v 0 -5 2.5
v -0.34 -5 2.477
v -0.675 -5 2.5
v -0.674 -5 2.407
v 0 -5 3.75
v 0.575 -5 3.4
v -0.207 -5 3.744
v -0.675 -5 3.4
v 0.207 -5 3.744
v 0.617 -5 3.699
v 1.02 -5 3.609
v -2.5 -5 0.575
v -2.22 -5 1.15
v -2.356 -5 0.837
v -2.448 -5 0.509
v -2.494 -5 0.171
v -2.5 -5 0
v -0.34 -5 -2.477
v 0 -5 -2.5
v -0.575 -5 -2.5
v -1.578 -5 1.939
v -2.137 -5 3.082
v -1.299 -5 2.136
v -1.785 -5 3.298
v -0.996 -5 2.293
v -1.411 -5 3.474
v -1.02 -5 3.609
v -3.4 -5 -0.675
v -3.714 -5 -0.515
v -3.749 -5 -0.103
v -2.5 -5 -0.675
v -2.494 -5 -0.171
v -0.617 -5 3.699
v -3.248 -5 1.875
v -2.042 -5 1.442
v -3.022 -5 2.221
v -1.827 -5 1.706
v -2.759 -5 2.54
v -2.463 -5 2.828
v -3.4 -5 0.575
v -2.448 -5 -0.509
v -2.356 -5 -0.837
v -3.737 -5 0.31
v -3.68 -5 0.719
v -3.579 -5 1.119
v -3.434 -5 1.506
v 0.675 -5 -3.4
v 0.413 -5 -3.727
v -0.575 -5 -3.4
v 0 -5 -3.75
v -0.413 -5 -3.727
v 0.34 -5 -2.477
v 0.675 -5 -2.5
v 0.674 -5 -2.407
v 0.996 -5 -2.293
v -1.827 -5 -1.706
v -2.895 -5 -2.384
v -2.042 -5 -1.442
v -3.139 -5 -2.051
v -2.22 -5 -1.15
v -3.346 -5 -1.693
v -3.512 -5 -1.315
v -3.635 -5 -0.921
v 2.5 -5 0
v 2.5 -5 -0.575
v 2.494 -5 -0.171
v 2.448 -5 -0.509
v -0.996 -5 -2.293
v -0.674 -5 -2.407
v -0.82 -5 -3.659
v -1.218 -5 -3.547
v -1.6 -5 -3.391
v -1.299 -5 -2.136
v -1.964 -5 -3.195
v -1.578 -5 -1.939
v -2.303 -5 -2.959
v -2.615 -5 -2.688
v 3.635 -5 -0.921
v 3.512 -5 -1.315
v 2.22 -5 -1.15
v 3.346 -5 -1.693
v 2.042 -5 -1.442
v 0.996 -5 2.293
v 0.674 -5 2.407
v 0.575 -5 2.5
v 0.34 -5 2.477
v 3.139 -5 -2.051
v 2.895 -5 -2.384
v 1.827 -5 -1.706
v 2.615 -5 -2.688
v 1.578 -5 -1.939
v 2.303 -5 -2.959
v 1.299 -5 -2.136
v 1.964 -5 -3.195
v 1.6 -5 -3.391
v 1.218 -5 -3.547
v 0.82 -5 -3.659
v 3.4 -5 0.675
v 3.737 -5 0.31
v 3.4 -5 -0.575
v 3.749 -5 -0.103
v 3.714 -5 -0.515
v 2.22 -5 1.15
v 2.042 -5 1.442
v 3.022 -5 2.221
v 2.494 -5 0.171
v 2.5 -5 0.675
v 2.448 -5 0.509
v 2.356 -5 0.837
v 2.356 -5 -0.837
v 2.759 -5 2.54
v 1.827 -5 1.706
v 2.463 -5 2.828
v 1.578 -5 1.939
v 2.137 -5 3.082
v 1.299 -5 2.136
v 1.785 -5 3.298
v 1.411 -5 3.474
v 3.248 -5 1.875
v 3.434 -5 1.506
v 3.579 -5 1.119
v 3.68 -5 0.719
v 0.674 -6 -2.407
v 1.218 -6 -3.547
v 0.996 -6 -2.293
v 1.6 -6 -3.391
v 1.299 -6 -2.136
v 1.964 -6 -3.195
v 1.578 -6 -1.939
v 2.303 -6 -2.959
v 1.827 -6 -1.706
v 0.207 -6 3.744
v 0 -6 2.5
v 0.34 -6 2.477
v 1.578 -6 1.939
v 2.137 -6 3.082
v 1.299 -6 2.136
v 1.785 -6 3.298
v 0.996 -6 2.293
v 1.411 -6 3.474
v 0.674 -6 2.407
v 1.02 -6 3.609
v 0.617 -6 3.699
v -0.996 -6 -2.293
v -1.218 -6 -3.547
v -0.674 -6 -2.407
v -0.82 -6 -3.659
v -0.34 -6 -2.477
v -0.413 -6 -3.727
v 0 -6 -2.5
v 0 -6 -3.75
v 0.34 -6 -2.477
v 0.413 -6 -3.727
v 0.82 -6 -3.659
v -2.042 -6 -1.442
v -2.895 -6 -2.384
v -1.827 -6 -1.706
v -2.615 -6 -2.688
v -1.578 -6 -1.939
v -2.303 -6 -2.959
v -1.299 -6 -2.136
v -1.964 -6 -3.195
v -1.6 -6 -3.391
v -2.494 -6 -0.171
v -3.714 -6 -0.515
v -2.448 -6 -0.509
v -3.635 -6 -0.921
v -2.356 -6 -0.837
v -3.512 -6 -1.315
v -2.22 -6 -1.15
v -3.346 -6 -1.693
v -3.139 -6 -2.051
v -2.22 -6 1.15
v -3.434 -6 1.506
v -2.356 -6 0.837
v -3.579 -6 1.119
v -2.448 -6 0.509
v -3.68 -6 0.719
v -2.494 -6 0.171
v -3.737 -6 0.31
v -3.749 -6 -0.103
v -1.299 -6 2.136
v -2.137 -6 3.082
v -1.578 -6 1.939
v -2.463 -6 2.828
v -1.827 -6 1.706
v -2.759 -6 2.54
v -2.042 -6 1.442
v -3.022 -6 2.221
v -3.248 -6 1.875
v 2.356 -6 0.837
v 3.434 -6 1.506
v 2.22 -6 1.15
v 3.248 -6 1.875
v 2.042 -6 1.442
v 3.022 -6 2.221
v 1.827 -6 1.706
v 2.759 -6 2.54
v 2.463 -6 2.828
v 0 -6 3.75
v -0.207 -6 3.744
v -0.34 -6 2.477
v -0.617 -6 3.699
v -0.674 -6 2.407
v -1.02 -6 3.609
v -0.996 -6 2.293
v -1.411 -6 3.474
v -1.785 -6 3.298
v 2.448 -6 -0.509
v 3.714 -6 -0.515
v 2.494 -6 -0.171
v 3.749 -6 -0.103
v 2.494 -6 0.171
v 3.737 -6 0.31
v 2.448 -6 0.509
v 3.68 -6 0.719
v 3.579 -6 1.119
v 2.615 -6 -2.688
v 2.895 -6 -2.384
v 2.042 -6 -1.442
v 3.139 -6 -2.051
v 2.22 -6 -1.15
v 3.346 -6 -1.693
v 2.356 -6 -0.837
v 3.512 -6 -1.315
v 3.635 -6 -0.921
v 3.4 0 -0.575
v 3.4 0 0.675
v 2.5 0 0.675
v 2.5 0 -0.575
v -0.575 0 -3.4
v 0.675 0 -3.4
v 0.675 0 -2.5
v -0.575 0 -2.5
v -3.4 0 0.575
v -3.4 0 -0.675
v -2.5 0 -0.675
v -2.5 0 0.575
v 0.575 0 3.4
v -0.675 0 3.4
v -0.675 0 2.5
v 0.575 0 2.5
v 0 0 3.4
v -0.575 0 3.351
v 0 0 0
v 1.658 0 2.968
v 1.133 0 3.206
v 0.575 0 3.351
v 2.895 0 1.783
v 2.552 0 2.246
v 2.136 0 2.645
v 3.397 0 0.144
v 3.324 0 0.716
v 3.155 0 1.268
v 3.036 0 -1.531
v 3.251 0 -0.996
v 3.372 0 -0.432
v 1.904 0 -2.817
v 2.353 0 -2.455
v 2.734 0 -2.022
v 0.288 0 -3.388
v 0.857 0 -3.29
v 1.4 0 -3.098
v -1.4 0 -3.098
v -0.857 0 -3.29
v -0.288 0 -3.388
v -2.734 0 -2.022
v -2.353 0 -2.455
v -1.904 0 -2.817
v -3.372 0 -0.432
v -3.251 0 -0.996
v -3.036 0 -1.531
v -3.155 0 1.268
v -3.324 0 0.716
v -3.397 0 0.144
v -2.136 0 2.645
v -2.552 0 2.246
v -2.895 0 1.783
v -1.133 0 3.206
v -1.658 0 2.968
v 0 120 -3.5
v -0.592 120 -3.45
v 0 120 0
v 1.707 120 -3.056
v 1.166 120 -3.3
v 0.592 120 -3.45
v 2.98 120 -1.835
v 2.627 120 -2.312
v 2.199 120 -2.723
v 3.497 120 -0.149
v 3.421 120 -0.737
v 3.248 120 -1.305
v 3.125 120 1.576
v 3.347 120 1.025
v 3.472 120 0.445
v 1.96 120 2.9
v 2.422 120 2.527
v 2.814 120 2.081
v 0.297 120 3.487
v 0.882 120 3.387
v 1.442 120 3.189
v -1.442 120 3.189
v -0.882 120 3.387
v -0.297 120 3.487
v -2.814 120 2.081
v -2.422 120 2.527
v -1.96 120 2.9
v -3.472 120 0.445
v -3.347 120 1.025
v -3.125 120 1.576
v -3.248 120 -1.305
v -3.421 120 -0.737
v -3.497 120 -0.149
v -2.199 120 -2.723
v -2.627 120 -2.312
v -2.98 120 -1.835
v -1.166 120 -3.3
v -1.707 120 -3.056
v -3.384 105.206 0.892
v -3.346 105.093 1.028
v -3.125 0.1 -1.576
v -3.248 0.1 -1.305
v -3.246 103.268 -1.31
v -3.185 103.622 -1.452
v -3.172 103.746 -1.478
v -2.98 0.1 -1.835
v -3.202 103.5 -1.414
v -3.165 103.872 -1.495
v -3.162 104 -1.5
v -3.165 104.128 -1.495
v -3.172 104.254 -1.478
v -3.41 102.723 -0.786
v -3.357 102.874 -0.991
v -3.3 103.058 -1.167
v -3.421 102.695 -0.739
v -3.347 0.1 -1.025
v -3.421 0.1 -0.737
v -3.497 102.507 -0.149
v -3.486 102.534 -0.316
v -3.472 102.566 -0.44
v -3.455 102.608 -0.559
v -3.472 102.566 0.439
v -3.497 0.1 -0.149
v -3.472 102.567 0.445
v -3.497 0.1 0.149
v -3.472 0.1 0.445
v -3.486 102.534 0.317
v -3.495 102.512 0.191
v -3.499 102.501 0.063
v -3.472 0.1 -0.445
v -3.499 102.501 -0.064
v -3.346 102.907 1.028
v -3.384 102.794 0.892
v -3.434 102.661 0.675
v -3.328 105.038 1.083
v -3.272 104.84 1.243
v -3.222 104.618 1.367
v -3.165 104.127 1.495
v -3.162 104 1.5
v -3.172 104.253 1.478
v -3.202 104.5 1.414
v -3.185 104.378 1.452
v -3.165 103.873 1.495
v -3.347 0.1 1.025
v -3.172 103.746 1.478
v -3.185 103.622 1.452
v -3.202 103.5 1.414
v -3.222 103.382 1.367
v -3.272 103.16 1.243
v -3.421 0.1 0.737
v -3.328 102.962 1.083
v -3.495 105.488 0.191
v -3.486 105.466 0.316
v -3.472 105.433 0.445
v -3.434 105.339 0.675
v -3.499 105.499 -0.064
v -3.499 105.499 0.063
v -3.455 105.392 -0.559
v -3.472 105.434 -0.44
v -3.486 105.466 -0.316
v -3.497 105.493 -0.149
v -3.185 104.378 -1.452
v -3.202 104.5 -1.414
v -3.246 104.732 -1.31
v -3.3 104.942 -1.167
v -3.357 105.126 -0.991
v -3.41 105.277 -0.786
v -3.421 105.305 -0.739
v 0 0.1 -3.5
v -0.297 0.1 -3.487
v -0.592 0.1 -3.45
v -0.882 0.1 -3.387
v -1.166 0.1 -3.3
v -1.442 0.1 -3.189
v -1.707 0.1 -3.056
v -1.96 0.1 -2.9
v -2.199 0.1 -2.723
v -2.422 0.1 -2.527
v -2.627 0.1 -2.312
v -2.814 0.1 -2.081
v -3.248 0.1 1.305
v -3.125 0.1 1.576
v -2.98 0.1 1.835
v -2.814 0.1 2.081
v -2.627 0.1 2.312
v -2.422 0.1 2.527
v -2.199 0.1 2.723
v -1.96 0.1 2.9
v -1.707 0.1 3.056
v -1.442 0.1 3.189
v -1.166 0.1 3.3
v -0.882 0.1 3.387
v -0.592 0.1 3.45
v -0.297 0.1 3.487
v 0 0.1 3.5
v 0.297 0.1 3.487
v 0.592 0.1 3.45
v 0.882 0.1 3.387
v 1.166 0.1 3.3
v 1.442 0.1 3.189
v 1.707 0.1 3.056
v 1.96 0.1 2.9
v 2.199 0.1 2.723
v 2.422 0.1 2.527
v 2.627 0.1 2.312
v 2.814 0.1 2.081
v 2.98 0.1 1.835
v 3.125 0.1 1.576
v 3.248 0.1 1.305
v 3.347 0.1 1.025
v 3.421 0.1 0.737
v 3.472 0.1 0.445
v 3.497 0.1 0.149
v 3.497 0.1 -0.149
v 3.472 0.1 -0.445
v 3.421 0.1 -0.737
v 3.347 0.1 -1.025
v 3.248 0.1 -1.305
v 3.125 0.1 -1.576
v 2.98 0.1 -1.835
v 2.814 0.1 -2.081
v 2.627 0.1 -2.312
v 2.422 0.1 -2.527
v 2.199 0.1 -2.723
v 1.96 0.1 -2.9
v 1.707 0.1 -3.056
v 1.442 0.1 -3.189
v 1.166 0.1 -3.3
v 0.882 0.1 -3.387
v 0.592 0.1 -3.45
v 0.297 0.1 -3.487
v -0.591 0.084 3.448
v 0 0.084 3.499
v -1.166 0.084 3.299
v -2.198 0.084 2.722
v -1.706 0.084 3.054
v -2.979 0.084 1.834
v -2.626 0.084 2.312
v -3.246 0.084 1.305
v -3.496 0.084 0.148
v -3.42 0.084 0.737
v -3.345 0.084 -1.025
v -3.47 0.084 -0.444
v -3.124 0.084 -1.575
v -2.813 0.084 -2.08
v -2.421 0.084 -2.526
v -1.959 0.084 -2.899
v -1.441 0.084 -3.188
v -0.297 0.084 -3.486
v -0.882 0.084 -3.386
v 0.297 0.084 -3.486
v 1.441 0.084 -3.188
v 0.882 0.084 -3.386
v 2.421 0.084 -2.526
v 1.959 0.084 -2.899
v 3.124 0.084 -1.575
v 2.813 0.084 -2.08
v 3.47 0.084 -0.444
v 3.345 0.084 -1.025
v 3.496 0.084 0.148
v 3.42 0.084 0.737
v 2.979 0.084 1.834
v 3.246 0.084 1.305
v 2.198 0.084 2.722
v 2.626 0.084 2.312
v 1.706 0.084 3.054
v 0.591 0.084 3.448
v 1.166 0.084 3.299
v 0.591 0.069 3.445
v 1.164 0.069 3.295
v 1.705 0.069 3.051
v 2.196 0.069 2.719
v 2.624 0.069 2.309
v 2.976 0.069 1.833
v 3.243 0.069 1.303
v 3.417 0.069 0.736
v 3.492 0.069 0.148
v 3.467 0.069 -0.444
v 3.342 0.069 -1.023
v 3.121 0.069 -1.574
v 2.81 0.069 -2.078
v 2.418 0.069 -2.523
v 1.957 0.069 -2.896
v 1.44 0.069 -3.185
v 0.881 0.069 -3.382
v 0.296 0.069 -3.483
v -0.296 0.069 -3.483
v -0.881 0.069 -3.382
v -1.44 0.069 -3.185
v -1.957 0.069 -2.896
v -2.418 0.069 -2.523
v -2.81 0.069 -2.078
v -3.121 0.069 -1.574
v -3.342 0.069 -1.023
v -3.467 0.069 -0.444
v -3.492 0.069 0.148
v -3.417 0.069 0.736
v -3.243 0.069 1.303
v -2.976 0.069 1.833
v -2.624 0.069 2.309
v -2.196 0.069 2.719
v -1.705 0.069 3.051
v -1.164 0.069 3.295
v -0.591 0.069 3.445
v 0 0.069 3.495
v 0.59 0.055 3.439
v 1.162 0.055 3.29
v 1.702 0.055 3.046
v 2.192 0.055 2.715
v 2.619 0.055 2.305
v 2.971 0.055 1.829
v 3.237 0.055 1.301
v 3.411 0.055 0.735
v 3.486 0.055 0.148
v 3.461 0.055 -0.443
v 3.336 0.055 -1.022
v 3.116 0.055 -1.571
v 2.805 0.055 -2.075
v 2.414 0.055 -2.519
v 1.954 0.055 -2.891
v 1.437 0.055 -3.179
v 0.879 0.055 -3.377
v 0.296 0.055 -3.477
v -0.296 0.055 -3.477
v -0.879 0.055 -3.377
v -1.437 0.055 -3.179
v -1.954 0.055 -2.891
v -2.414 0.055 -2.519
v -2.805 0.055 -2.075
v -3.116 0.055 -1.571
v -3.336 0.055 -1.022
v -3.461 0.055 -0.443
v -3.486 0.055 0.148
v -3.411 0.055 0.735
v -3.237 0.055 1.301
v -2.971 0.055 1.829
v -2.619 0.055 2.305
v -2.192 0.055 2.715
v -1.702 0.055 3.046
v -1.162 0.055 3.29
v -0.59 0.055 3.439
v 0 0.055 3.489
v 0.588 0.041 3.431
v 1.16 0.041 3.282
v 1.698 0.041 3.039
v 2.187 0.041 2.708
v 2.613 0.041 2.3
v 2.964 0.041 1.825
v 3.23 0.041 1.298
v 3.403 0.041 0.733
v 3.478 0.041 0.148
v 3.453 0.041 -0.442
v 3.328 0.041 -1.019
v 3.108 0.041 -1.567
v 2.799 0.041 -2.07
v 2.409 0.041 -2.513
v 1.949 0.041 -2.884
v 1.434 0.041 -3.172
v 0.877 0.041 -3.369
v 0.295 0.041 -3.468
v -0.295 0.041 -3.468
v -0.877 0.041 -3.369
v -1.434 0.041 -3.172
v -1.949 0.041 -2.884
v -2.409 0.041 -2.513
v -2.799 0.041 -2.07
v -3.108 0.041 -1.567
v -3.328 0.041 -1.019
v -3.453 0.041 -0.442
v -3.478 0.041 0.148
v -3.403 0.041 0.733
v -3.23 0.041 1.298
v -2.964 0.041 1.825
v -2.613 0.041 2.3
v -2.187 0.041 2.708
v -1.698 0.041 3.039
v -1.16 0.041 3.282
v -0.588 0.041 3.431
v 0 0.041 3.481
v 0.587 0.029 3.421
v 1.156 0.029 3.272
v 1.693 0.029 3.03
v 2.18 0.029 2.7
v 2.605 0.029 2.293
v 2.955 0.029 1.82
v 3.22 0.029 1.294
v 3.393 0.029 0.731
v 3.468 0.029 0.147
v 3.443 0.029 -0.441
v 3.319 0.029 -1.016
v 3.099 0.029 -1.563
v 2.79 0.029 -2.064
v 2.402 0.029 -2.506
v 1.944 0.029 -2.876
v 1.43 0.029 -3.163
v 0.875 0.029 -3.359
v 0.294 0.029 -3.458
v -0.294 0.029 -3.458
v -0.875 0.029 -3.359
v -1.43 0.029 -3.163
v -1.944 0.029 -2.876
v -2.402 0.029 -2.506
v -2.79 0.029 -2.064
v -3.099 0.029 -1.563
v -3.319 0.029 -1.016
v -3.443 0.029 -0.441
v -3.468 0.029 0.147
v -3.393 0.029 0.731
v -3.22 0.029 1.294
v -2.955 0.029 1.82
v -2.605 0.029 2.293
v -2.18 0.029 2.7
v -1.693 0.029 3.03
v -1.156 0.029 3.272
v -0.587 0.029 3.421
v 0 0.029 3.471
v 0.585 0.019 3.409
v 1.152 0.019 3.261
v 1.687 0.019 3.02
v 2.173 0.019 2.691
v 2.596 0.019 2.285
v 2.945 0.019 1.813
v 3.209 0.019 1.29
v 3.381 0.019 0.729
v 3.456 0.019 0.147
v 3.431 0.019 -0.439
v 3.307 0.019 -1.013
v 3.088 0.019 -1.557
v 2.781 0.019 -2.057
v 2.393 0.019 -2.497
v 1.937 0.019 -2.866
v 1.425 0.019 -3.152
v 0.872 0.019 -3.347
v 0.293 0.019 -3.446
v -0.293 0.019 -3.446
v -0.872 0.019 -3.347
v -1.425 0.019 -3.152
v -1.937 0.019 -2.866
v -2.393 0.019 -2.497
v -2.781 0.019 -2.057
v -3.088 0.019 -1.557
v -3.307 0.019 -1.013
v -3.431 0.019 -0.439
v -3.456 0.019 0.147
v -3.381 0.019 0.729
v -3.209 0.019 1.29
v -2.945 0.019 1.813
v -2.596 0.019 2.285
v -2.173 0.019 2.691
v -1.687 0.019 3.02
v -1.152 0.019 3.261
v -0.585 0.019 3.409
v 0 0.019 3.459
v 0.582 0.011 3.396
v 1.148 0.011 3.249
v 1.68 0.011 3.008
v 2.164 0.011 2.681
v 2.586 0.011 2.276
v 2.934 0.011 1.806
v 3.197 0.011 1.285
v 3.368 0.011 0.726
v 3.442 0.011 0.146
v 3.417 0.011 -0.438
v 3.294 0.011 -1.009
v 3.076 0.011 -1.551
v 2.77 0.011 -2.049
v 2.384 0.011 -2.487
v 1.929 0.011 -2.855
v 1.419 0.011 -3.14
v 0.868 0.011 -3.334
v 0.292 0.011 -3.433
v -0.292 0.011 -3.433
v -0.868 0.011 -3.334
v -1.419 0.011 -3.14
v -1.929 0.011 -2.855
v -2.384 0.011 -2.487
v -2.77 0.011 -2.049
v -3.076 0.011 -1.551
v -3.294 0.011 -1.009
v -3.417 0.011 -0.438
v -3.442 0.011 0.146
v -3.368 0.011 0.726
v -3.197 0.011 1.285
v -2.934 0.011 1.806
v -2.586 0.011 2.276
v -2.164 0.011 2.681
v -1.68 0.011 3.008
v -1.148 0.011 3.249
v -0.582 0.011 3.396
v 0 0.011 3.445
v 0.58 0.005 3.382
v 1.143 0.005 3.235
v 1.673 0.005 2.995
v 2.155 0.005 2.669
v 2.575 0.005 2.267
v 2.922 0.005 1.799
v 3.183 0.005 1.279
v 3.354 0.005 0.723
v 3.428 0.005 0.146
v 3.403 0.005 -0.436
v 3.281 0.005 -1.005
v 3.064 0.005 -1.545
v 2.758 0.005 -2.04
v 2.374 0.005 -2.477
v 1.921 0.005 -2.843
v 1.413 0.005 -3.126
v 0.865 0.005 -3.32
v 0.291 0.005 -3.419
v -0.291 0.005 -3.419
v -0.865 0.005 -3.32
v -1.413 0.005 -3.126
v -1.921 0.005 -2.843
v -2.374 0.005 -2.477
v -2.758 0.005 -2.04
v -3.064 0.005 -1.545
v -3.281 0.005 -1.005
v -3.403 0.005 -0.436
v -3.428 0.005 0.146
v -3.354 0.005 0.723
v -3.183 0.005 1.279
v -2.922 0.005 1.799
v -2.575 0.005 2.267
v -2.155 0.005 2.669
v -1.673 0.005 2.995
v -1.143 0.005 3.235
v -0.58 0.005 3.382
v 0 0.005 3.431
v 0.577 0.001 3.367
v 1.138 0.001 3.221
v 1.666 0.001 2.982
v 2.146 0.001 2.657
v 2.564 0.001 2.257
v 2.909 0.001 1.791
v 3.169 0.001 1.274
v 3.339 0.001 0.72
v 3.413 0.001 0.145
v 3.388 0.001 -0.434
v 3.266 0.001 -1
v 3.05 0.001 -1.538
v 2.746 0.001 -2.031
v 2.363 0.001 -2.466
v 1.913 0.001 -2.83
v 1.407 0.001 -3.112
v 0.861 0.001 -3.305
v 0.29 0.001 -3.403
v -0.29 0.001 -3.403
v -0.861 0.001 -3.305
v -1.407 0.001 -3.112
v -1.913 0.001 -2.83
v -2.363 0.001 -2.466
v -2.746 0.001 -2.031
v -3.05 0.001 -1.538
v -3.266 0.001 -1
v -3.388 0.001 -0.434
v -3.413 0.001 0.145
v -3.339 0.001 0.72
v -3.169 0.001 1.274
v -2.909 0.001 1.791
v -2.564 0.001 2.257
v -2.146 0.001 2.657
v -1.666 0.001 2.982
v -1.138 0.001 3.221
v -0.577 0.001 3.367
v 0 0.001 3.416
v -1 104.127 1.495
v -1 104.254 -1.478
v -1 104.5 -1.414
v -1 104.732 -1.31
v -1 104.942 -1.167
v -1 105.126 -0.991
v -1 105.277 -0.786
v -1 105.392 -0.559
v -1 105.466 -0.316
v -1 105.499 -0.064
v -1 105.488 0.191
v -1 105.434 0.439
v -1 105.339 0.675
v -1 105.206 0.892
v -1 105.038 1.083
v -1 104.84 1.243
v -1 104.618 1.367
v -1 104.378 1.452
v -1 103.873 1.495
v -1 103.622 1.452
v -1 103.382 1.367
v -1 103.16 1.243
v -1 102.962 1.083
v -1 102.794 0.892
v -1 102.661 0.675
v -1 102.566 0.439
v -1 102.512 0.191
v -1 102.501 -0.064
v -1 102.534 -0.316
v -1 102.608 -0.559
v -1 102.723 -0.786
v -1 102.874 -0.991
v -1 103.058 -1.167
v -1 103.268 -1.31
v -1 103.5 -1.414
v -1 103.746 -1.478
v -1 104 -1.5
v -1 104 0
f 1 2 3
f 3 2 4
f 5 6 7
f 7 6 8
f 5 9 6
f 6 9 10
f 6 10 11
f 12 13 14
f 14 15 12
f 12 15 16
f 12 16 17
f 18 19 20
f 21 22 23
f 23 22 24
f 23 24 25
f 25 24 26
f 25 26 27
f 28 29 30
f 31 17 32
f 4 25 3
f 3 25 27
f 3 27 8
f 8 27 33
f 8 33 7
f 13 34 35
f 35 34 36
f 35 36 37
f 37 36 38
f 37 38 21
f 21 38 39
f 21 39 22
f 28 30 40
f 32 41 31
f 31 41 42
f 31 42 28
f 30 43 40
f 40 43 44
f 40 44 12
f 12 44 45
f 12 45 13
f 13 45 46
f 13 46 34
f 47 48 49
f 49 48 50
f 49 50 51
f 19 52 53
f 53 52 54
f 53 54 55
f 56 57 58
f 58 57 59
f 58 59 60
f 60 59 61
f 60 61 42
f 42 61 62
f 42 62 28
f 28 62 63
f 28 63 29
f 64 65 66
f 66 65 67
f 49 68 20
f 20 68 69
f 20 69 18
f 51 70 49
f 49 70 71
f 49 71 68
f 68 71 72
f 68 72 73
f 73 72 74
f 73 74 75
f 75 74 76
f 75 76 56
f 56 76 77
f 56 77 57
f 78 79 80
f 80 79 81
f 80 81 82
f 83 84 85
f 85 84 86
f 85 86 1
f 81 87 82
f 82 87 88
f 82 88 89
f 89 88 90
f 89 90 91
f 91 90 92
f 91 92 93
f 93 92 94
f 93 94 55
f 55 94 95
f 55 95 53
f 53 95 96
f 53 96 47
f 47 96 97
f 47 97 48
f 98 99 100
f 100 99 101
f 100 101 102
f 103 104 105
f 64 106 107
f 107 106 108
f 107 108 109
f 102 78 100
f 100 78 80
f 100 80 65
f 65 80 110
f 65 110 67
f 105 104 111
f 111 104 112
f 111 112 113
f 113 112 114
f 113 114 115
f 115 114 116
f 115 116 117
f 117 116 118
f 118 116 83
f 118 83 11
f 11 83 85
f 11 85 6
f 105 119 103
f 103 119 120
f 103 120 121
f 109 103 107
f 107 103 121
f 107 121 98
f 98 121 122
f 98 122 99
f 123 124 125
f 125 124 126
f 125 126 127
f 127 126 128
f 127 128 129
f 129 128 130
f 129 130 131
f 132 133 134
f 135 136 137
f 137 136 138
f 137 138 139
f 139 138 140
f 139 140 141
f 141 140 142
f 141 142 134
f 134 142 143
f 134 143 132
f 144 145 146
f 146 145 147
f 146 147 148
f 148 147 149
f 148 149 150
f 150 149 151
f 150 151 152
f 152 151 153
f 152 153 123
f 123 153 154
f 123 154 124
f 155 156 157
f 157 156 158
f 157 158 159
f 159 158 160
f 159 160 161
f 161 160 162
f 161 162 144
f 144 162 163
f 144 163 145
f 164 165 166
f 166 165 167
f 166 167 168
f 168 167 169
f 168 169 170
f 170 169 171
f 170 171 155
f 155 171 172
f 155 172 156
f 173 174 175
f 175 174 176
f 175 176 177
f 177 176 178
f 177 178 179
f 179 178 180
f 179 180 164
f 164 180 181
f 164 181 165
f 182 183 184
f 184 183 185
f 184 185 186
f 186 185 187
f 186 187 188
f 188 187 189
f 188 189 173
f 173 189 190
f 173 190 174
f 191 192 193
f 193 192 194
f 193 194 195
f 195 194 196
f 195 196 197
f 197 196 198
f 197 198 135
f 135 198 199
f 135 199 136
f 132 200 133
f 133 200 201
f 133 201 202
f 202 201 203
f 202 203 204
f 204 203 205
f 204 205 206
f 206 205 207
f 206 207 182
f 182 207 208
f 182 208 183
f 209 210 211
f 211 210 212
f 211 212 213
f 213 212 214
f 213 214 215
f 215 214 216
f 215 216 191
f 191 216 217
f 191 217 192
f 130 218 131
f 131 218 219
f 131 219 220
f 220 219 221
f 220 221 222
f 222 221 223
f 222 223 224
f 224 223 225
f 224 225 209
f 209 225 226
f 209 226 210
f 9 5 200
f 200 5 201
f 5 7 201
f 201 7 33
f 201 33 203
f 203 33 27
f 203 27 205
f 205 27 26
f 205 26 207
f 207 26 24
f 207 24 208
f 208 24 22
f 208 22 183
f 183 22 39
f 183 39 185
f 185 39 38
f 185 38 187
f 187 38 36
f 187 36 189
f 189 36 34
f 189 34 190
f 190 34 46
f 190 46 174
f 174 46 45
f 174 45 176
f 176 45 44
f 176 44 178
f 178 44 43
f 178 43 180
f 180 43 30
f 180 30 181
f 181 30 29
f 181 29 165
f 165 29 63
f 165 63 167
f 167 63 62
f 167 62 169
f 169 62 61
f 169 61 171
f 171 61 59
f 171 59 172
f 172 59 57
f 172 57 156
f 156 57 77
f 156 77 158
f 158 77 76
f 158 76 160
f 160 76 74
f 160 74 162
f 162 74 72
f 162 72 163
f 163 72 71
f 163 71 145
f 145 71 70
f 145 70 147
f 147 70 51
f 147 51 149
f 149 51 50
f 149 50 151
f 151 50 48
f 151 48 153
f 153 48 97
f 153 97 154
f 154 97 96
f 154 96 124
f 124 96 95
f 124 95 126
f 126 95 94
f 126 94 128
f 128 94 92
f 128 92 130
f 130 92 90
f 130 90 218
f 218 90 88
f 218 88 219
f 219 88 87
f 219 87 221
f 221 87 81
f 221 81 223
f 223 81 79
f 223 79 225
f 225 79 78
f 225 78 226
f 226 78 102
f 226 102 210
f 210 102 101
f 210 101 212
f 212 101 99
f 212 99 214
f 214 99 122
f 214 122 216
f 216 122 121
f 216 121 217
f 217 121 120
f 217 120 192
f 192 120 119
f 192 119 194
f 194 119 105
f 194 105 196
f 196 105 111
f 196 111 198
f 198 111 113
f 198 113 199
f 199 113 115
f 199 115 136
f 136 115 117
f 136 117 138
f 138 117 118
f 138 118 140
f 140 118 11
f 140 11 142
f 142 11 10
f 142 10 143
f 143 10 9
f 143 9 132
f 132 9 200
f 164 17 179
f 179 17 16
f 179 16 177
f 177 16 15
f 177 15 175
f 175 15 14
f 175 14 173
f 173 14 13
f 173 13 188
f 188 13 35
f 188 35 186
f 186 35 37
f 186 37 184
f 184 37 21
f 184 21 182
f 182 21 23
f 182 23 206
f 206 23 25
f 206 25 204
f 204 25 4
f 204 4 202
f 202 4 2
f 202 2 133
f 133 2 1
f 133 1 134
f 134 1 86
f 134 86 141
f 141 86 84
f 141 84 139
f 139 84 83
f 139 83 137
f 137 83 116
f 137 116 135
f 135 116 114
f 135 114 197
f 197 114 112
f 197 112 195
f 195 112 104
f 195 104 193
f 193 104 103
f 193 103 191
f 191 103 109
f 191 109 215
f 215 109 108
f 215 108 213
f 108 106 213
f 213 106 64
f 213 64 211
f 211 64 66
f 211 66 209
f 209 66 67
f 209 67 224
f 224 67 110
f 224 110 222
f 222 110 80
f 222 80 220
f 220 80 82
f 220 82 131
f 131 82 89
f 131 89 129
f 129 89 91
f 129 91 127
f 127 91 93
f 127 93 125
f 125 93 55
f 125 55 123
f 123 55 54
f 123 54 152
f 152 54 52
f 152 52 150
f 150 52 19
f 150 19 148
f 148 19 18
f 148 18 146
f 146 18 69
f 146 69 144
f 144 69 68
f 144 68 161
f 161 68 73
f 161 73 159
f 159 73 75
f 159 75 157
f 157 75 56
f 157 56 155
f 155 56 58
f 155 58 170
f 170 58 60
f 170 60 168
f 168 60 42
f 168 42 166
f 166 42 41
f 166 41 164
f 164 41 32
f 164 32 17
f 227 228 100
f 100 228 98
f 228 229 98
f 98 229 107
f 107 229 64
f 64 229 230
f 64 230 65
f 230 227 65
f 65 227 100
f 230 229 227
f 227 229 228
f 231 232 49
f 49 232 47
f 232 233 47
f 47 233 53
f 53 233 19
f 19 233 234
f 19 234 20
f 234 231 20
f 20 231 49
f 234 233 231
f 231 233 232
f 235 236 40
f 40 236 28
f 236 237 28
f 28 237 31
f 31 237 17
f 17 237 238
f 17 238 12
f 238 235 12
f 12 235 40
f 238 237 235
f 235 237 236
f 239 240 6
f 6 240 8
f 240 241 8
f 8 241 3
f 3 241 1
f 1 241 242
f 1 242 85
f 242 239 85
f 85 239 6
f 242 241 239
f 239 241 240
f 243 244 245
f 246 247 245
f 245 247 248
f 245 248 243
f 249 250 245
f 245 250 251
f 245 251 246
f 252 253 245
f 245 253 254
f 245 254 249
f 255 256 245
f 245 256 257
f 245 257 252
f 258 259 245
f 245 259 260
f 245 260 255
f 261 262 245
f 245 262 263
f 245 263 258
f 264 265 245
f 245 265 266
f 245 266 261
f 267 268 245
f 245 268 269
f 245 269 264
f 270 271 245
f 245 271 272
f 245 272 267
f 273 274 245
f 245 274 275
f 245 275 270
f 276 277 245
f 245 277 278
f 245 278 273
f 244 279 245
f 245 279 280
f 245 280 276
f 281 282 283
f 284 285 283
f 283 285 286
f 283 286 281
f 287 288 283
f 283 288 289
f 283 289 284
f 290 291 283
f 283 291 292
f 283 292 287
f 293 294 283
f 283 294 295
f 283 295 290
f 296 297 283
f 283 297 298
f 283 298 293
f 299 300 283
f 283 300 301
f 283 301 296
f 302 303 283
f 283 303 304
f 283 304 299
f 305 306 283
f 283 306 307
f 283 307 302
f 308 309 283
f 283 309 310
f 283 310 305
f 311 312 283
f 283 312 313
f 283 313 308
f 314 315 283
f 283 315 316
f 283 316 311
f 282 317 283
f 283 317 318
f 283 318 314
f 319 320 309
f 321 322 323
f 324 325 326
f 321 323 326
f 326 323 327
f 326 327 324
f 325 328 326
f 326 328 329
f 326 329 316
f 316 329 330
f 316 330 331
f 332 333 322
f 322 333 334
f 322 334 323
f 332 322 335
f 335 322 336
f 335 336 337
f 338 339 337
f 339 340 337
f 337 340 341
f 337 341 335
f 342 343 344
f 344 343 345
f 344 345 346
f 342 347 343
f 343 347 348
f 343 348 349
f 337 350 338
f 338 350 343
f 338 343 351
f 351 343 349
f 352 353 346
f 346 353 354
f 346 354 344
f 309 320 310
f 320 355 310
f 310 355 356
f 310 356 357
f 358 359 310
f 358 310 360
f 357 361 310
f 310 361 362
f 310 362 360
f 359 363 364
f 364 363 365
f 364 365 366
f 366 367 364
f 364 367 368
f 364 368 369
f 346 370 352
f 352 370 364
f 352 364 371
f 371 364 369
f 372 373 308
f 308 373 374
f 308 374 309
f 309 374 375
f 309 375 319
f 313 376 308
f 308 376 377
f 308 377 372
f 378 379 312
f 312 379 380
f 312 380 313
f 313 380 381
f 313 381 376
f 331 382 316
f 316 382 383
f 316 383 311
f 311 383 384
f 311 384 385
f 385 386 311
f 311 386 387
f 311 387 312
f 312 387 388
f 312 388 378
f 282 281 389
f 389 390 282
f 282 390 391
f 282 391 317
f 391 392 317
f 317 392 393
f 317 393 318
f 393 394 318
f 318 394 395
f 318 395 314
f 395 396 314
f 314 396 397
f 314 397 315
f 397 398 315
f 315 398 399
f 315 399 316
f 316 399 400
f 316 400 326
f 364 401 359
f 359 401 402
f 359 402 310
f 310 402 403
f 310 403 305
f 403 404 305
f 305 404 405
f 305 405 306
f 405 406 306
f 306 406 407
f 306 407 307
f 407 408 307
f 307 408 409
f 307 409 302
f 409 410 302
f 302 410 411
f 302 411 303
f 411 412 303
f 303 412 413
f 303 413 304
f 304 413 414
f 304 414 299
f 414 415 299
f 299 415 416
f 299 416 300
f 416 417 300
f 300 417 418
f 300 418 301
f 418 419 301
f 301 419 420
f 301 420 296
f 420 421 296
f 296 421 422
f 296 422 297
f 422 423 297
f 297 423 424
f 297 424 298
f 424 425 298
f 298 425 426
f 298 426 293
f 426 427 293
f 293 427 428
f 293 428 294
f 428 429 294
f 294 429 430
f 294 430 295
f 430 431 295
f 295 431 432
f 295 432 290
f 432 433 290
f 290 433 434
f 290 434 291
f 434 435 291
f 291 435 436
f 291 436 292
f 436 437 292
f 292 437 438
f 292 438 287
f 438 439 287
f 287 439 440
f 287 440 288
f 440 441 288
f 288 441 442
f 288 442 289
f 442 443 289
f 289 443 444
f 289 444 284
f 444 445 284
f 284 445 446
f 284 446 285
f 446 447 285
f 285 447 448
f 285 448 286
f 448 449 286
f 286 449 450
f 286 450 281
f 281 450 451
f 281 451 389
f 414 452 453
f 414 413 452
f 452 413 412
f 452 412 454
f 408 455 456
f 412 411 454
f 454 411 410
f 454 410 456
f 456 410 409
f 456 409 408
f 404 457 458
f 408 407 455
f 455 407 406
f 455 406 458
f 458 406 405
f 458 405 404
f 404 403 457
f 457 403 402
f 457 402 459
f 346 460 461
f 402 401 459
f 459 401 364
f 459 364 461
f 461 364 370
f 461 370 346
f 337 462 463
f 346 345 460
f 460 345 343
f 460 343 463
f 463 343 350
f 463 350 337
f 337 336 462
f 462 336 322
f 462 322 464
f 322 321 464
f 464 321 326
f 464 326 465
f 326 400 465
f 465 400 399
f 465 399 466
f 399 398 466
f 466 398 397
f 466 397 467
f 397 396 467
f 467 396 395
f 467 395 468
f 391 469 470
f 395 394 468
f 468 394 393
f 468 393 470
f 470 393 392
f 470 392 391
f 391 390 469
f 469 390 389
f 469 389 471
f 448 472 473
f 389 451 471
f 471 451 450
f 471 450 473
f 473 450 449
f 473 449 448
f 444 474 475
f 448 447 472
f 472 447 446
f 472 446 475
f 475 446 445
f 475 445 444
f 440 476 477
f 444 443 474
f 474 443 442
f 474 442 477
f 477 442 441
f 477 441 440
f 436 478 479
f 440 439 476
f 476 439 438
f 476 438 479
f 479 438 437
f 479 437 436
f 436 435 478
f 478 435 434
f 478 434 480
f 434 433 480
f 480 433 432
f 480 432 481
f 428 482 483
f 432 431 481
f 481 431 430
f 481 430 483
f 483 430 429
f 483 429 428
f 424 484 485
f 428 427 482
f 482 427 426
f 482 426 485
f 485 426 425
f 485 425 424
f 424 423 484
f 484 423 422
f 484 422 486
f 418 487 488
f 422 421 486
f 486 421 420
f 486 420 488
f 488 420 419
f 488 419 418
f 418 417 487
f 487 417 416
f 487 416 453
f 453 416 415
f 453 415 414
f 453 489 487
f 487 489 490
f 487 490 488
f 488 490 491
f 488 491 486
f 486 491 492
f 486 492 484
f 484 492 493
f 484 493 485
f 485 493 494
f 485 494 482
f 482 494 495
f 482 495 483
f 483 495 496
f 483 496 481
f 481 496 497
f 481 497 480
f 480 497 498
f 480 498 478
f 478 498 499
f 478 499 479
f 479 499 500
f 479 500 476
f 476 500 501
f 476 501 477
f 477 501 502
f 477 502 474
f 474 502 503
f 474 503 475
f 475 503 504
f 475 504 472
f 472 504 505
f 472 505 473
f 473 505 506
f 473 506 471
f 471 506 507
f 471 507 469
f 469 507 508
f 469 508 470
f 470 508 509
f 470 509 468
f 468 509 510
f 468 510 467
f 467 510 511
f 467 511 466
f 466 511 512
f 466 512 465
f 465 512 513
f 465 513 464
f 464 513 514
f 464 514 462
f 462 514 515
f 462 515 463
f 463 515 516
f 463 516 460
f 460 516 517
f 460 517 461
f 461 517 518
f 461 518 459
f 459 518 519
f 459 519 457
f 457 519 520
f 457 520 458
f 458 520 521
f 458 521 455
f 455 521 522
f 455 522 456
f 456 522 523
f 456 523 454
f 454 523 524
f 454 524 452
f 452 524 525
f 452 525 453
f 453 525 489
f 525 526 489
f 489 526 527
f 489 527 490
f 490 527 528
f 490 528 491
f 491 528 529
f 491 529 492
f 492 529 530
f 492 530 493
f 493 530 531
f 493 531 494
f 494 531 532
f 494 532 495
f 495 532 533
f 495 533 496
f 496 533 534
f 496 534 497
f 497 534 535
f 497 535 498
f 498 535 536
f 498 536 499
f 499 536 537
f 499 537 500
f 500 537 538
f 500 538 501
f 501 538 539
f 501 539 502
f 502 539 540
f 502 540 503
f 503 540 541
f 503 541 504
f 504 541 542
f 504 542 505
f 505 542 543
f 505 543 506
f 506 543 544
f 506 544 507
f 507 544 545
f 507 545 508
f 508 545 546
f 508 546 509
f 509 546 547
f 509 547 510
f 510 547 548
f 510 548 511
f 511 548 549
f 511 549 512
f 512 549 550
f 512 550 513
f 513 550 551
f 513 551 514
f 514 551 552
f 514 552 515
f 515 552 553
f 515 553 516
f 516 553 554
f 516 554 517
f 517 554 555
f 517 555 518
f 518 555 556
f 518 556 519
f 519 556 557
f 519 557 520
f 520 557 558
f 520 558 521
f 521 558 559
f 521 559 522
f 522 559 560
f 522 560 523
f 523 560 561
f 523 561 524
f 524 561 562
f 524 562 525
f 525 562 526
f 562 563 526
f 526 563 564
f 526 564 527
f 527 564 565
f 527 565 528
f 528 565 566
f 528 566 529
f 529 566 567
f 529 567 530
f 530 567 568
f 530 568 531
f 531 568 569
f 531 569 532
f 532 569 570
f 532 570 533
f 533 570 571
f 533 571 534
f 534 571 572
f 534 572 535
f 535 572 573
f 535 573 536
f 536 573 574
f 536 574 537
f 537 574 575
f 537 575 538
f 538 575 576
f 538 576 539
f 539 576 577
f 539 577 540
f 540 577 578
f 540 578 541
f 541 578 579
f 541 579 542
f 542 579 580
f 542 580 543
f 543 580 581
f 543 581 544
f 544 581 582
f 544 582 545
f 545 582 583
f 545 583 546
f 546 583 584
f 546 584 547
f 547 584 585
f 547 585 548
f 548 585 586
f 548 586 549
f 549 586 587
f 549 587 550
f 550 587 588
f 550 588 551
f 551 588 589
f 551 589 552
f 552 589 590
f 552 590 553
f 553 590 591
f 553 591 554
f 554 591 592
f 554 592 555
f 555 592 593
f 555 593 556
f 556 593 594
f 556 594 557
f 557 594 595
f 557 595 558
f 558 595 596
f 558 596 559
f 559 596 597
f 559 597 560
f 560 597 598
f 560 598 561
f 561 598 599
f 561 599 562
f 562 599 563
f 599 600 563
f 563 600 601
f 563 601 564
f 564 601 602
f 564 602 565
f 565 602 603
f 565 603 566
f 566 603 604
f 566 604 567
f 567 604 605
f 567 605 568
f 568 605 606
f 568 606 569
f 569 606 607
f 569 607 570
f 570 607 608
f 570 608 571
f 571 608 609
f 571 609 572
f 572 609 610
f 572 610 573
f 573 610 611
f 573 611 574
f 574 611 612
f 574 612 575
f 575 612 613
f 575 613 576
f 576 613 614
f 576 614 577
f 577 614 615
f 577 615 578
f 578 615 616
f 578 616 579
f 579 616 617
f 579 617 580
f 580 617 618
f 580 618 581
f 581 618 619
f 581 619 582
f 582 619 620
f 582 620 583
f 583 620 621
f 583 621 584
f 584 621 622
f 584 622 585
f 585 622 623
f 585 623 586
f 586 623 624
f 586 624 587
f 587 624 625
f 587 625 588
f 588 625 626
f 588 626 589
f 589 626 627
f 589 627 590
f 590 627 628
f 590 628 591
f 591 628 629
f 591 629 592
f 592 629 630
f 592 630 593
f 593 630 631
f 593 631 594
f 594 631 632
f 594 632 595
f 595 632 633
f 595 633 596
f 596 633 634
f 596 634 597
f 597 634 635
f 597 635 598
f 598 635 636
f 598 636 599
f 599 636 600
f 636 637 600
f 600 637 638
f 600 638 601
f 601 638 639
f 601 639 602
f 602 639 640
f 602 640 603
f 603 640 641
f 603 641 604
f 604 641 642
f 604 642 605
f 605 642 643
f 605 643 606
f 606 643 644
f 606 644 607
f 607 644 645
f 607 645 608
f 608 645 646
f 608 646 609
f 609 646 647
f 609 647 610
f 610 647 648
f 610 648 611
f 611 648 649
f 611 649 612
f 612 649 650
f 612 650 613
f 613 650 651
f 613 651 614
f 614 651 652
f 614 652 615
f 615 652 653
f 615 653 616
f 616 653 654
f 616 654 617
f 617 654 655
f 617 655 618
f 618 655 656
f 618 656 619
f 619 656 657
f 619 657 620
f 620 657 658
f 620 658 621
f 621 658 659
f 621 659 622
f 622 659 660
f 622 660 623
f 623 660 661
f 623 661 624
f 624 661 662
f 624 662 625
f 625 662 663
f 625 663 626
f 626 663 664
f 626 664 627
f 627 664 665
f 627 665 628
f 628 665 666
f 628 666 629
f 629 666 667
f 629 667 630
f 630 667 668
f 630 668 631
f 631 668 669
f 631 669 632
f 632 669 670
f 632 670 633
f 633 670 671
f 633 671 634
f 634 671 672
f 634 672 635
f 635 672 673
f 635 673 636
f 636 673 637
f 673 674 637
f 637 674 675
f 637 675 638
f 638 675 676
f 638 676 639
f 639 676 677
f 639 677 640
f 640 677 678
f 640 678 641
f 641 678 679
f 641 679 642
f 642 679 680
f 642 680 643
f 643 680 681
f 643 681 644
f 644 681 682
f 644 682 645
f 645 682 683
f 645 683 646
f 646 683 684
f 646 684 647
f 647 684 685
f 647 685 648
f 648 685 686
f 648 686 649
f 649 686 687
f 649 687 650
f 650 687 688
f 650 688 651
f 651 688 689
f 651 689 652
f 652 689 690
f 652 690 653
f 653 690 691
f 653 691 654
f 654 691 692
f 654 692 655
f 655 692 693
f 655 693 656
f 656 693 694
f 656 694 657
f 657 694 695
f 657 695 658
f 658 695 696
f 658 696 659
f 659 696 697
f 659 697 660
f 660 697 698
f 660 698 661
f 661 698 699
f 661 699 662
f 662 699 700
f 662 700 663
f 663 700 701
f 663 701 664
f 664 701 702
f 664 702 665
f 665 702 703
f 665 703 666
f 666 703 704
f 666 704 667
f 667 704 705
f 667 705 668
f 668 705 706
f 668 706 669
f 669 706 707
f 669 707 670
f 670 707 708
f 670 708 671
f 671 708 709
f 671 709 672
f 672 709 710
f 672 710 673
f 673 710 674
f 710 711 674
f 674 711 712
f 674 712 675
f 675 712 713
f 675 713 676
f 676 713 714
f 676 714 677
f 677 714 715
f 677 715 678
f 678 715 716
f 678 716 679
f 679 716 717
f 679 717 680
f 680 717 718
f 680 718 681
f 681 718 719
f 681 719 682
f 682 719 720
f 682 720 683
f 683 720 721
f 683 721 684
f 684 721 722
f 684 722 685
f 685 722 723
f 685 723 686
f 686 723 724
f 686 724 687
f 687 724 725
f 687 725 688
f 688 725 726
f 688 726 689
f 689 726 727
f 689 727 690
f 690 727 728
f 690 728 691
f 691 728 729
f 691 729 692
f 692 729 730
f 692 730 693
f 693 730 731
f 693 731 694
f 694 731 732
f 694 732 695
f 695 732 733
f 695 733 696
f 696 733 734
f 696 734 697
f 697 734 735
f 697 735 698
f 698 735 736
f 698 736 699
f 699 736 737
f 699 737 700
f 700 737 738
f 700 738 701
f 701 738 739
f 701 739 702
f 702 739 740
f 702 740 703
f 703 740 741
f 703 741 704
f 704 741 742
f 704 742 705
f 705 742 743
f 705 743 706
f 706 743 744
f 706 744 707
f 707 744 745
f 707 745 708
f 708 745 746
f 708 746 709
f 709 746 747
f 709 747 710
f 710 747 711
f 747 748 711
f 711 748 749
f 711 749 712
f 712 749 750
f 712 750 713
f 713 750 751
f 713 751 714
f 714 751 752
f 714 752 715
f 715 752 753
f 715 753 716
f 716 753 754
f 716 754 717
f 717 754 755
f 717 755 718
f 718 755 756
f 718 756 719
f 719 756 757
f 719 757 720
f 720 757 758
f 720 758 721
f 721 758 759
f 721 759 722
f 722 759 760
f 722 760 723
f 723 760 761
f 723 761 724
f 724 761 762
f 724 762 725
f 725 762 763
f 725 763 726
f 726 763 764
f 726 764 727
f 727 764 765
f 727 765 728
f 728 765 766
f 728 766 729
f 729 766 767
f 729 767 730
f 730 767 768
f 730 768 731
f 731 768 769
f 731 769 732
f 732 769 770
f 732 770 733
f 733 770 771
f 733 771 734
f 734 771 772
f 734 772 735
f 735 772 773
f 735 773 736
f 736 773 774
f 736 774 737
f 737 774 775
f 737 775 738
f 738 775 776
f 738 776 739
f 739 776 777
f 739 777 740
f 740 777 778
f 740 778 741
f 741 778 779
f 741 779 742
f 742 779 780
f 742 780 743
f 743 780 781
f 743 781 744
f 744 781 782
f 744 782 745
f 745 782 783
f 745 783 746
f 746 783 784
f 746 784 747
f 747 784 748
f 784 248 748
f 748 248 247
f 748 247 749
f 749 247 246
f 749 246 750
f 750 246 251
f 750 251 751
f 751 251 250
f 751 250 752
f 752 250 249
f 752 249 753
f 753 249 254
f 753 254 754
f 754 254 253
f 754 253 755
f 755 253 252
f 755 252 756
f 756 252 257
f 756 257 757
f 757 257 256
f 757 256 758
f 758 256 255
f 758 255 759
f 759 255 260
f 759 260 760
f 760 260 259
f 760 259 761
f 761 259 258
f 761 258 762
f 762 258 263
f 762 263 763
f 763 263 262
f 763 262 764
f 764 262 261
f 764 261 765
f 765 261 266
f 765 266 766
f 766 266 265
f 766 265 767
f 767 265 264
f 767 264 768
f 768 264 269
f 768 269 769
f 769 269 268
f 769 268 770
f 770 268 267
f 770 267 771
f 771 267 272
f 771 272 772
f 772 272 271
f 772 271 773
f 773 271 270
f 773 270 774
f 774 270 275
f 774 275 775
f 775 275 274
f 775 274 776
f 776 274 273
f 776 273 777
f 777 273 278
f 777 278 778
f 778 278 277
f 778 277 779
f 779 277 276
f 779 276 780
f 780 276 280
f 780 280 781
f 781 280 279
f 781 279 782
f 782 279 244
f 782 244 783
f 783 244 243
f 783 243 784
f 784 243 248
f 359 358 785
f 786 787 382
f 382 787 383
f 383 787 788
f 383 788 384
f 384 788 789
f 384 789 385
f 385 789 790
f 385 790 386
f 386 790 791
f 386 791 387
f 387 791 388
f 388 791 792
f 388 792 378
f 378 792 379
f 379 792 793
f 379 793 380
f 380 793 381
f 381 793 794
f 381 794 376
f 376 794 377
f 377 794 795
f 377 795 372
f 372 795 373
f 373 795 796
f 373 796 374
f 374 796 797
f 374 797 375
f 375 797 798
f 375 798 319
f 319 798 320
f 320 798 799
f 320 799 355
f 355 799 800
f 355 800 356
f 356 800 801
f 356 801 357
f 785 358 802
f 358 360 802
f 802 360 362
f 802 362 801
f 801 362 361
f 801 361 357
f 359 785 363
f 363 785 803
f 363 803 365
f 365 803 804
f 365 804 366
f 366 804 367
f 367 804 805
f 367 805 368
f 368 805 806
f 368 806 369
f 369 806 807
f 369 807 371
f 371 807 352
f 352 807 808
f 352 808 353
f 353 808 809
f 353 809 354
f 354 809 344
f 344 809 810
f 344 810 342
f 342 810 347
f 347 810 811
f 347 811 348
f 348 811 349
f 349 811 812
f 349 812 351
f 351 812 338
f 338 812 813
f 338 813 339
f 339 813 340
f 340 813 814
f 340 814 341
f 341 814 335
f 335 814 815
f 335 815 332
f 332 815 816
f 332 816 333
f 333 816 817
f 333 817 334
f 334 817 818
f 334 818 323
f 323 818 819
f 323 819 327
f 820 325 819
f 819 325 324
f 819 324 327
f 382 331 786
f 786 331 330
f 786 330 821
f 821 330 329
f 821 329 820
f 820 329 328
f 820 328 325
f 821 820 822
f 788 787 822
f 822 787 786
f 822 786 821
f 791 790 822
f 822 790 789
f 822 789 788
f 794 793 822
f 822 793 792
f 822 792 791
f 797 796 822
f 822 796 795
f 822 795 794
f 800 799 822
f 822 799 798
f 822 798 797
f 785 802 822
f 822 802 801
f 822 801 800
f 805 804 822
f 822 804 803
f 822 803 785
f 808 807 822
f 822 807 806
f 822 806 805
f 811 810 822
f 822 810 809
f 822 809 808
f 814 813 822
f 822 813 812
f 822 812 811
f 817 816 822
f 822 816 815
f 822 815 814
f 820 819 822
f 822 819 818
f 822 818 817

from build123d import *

# Parameters (mm, degrees)
ESQUISSE1_W                  = 3.5
ESQUISSE1_H                  = 120
BOSS_EXTRU_2_START           = -6
ESQUISSE6_R                  = 3.75
ESQUISSE6_R_2                = 2.5
BOSS_EXTRU_2_DEPTH           = 1
ESQUISSE7_W                  = 0.9
ESQUISSE7_H                  = 1.25
BOSS_EXTRU_3_DEPTH           = 5
R_P_TITION_CIRCULAIRE1_COUNT = 4
CONG_11_R                    = 0.1
ENL_V_START                  = -1
ESQUISSE10_R                 = 1.5
ENL_V_MAT_EXTRU_1_DEPTH      = 10


with BuildPart() as part:
    # Esquisse1 → Révolution1 (revolve)
    with BuildSketch(Plane.XY, mode=Mode.PRIVATE) as r_volution1_sk:
        with Locations((-1.75, 60)):
            Rectangle(ESQUISSE1_W, ESQUISSE1_H)
    revolve(r_volution1_sk.sketch.rotate(Axis((0, 0, 0), (0, 1, 0)), 270), axis=Axis((0, 0, 0), (0, 1, 0)))

    # Congé11
    cong_11_edges = [part.edges().sort_by_distance(p)[0] for p in [
        (0, 0, 3.5),
    ]]
    fillet(cong_11_edges, radius=CONG_11_R)

    # Esquisse10 → Enlèv. mat.-Extru.1 (cut)
    with BuildSketch(Plane(origin=(0, 0, 0), x_dir=(0, 0, -1), z_dir=(1, 0, 0)).offset(ENL_V_START)):
        with Locations((0, 104)):
            Circle(ESQUISSE10_R)
    extrude(amount=-ENL_V_MAT_EXTRU_1_DEPTH, mode=Mode.SUBTRACT)


with BuildPart() as body_2:
    # Esquisse6 → Boss.-Extru.2 (new body)
    with BuildSketch(Plane(origin=(0, 0, 0), x_dir=(1, 0, 0), z_dir=(0, 1, 0)).offset(BOSS_EXTRU_2_START)):
        with Locations(Location((0, 0, 0), (0, 0, 270))):
            Circle(ESQUISSE6_R)
        with Locations(Location((0, 0, 0), (0, 0, 270))):
            Circle(ESQUISSE6_R_2, mode=Mode.SUBTRACT)
    extrude(amount=BOSS_EXTRU_2_DEPTH)

    # Esquisse7 → Boss.-Extru.3 (add)
    with BuildSketch(Plane(origin=(0, 0, 0), x_dir=(1, 0, 0), z_dir=(0, 1, 0))):
        with Locations((2.95, -0.05)):
            Rectangle(ESQUISSE7_W, ESQUISSE7_H)
    boss_extru_3 = extrude(amount=-BOSS_EXTRU_3_DEPTH)

    # Répétition circulaire1: Boss.-Extru.3 ×4 about axis
    r_p_tition_circulaire1_axis = Axis((0, 0, 0), (0, 1, 0))
    for i in range(1, R_P_TITION_CIRCULAIRE1_COUNT):
        add(boss_extru_3.rotate(r_p_tition_circulaire1_axis, i * 360 / R_P_TITION_CIRCULAIRE1_COUNT))


solid = Compound([part.part, body_2.part])
